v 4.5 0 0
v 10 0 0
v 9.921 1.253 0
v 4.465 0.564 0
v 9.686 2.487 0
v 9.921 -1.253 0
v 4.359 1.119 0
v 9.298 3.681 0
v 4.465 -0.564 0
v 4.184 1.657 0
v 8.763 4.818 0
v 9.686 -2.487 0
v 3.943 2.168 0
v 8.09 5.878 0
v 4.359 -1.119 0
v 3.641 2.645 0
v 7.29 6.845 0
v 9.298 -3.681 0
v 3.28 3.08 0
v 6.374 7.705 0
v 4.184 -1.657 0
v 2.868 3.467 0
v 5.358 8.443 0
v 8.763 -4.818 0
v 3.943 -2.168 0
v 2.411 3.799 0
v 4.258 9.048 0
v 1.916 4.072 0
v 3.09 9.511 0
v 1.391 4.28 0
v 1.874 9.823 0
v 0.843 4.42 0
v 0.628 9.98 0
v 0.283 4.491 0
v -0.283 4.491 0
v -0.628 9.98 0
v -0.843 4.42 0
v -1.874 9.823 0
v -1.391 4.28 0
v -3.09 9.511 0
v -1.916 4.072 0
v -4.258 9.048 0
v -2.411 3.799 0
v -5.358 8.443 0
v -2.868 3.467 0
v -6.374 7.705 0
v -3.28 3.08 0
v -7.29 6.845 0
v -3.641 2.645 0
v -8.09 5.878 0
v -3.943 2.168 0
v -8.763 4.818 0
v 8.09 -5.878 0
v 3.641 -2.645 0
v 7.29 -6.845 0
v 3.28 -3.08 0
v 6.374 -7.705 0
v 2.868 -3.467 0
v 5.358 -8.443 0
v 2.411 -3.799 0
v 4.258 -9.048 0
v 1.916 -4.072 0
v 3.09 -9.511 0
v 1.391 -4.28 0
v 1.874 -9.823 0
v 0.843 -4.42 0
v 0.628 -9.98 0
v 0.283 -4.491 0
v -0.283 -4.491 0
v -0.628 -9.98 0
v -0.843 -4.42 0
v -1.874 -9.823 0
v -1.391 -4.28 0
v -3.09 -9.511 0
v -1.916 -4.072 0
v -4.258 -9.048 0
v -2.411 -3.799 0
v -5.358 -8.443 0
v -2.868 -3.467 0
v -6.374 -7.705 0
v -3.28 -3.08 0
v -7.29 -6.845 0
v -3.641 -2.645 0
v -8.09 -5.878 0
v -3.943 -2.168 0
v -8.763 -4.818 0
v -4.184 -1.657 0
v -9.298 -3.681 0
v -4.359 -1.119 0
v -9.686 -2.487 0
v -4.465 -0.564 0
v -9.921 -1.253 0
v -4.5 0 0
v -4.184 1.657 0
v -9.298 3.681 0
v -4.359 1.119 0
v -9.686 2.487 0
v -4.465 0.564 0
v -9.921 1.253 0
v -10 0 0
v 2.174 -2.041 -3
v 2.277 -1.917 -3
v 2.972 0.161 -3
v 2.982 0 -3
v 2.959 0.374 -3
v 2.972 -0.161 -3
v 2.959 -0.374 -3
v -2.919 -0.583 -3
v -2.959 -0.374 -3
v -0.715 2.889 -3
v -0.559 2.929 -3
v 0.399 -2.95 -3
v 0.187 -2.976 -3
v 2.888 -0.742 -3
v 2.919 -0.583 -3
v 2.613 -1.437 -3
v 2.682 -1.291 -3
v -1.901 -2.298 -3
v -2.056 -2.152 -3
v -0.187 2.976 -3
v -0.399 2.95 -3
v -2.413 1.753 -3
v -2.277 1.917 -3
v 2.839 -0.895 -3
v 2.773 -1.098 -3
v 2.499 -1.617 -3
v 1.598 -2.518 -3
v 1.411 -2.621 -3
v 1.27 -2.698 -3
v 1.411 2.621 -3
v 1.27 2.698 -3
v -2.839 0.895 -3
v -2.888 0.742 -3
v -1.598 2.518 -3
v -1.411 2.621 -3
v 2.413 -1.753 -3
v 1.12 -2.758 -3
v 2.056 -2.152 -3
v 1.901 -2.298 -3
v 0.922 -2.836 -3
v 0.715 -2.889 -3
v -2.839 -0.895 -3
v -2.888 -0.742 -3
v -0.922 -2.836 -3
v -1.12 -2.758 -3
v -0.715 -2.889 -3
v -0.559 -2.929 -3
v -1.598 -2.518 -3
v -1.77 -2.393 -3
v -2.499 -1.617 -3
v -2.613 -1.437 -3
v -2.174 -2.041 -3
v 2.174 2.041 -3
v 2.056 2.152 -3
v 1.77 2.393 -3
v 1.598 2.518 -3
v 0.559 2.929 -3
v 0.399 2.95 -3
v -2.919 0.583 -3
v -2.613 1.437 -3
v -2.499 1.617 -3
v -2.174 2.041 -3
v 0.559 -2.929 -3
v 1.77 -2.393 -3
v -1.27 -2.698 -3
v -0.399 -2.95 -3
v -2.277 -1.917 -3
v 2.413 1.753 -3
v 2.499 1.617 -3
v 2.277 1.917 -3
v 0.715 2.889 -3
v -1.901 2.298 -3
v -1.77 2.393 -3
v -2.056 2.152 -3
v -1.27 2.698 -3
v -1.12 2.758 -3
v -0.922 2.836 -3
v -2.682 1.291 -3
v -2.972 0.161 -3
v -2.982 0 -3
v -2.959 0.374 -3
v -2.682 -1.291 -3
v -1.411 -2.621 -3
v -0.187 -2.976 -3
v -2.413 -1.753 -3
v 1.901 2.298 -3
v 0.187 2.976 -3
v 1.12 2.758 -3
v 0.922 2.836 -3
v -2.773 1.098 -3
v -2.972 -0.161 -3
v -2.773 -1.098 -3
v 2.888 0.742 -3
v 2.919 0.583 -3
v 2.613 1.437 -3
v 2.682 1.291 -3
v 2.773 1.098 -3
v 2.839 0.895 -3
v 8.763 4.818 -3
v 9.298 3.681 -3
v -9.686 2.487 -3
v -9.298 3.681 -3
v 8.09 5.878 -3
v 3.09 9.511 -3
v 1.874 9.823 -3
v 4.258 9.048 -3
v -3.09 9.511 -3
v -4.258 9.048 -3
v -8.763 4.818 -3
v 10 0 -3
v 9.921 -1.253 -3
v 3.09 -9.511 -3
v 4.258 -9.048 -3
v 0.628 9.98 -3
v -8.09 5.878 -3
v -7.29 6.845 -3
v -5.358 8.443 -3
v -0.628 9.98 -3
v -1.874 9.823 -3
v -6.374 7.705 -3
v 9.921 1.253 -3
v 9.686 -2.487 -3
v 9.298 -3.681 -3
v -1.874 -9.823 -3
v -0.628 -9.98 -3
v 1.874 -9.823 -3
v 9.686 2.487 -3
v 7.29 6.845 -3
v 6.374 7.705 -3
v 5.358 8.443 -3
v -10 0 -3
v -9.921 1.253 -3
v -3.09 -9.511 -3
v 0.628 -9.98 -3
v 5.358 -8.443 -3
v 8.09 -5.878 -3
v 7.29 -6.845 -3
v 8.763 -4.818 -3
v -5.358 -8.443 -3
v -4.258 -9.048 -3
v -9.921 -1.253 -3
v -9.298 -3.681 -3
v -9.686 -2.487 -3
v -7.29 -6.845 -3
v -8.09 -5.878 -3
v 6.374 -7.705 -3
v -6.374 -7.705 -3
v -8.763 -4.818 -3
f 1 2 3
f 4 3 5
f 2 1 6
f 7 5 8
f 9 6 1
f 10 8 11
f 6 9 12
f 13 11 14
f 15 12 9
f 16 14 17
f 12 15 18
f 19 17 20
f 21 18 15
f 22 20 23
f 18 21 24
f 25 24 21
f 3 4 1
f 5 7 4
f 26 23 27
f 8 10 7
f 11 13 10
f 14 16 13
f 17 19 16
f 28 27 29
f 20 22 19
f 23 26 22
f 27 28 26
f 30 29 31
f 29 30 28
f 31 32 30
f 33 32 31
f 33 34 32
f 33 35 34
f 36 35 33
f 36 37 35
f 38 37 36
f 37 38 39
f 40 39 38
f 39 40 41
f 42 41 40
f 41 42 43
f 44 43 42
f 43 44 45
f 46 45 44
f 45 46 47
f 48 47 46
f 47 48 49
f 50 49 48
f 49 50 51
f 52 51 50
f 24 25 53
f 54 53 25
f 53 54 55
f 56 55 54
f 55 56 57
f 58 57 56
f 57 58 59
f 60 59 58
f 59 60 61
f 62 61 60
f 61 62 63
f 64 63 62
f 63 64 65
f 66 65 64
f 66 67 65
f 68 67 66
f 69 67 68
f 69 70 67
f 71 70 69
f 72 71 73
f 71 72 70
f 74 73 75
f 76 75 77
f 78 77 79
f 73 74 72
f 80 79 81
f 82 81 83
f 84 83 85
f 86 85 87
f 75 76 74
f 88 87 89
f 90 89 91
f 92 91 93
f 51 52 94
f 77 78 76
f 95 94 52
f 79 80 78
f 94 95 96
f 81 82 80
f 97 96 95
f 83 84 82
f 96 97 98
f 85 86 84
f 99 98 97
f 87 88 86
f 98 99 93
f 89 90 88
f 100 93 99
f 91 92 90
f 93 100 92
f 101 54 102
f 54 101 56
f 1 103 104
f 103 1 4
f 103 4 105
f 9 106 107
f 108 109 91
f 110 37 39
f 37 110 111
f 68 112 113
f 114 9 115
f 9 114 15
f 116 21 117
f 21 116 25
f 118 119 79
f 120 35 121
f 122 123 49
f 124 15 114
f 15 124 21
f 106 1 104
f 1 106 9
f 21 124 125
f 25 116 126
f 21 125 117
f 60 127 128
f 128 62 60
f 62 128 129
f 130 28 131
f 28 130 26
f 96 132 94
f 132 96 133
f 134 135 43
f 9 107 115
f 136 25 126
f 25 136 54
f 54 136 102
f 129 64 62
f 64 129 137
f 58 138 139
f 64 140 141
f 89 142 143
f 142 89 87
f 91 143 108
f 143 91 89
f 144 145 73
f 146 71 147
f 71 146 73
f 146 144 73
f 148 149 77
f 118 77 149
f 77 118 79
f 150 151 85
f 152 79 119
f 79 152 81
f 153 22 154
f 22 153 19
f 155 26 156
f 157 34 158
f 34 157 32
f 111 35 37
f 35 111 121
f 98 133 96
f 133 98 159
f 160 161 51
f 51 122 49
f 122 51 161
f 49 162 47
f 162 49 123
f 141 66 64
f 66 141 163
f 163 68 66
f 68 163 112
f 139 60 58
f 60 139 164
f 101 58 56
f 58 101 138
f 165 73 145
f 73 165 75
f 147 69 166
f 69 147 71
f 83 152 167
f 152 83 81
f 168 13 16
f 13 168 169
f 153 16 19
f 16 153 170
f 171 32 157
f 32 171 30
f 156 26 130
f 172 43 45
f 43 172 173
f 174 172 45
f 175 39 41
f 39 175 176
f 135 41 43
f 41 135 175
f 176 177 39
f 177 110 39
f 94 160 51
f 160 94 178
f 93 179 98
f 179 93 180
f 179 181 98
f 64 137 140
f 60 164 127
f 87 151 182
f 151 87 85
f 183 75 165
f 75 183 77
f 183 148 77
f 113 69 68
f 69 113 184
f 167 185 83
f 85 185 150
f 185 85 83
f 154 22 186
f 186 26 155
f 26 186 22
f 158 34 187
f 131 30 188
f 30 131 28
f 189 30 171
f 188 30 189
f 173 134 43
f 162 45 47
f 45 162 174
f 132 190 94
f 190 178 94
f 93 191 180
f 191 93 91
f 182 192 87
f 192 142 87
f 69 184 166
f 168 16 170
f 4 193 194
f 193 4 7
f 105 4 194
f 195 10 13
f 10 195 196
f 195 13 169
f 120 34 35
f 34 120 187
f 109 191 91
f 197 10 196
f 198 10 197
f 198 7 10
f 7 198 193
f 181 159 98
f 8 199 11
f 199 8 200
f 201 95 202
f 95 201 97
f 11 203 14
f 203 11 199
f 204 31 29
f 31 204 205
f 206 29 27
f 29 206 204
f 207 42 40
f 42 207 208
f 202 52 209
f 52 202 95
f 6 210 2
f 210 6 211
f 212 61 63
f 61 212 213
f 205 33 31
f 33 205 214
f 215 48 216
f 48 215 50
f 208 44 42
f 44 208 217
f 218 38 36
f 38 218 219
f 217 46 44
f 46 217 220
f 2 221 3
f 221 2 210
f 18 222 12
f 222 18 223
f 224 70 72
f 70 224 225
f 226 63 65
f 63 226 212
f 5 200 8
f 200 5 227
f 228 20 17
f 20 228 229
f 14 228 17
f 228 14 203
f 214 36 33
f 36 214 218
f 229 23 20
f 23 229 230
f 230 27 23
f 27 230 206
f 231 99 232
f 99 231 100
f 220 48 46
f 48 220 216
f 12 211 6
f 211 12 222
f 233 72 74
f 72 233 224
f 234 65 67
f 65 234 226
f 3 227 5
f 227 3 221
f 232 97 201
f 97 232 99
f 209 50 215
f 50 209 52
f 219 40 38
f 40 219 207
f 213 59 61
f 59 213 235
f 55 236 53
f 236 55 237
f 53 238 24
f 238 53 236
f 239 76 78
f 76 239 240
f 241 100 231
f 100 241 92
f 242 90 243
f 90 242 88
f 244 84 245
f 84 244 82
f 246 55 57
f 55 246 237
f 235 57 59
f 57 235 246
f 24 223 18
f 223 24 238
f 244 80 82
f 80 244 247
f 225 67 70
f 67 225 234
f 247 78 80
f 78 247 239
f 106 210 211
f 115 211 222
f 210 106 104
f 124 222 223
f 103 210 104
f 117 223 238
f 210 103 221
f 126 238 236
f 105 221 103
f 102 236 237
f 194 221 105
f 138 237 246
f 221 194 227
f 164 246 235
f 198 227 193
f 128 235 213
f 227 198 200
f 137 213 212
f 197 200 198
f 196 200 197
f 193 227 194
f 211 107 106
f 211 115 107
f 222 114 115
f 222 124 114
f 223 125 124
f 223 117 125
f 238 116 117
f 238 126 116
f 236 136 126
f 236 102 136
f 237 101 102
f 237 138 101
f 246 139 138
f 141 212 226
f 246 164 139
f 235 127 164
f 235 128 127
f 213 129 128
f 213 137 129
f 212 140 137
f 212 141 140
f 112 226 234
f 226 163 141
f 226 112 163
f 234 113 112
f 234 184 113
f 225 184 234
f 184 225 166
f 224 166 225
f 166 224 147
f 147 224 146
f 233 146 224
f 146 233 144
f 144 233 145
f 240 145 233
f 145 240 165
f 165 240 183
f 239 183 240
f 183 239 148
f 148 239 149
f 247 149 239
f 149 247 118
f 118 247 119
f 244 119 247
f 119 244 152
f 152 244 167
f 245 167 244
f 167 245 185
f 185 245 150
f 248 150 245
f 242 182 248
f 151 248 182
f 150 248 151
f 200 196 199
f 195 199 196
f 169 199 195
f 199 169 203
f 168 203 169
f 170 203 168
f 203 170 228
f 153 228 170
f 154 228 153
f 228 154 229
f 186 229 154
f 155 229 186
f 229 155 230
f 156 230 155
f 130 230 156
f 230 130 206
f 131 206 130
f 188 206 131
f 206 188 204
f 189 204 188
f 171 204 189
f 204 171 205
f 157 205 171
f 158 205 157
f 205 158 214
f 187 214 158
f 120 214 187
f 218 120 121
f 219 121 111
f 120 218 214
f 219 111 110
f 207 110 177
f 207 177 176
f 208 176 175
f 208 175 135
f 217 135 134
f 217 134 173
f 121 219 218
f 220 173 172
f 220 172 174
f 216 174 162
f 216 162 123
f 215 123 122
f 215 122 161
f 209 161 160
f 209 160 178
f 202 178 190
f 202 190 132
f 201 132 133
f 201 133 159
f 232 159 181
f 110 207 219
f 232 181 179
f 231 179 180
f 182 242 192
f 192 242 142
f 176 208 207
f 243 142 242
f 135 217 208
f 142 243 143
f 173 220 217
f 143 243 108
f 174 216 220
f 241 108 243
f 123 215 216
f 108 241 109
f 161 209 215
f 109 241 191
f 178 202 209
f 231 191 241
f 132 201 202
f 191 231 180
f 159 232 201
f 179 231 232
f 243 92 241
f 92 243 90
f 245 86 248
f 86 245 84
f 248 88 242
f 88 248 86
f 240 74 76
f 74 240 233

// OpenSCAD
$fn = 50;


difference() {
	union() {
		translate(v = [0, 0, -3.0000000000]) {
			cylinder(h = 3, r = 10.0000000000);
		}
		cylinder(h = 0, r = 13.0000000000);
	}
	union() {
		translate(v = [0, 0, 0]) {
			rotate(a = [0, 0, 0]) {
				difference() {
					union() {
						#translate(v = [0, 0, -3.0000000000]) {
							cylinder(h = 3, r = 2.2500000000);
						}
						#translate(v = [0, 0, -4.2000000000]) {
							cylinder(h = 4.2000000000, r = 10.0000000000, r1 = 2.3750000000, r2 = 4.5000000000);
						}
						#translate(v = [0, 0, -3.0000000000]) {
							cylinder(h = 3, r = 2.3750000000);
						}
						#translate(v = [0, 0, -3.0000000000]) {
							cylinder(h = 3, r = 2.2500000000);
						}
					}
					union();
				}
			}
		}
	}
}
